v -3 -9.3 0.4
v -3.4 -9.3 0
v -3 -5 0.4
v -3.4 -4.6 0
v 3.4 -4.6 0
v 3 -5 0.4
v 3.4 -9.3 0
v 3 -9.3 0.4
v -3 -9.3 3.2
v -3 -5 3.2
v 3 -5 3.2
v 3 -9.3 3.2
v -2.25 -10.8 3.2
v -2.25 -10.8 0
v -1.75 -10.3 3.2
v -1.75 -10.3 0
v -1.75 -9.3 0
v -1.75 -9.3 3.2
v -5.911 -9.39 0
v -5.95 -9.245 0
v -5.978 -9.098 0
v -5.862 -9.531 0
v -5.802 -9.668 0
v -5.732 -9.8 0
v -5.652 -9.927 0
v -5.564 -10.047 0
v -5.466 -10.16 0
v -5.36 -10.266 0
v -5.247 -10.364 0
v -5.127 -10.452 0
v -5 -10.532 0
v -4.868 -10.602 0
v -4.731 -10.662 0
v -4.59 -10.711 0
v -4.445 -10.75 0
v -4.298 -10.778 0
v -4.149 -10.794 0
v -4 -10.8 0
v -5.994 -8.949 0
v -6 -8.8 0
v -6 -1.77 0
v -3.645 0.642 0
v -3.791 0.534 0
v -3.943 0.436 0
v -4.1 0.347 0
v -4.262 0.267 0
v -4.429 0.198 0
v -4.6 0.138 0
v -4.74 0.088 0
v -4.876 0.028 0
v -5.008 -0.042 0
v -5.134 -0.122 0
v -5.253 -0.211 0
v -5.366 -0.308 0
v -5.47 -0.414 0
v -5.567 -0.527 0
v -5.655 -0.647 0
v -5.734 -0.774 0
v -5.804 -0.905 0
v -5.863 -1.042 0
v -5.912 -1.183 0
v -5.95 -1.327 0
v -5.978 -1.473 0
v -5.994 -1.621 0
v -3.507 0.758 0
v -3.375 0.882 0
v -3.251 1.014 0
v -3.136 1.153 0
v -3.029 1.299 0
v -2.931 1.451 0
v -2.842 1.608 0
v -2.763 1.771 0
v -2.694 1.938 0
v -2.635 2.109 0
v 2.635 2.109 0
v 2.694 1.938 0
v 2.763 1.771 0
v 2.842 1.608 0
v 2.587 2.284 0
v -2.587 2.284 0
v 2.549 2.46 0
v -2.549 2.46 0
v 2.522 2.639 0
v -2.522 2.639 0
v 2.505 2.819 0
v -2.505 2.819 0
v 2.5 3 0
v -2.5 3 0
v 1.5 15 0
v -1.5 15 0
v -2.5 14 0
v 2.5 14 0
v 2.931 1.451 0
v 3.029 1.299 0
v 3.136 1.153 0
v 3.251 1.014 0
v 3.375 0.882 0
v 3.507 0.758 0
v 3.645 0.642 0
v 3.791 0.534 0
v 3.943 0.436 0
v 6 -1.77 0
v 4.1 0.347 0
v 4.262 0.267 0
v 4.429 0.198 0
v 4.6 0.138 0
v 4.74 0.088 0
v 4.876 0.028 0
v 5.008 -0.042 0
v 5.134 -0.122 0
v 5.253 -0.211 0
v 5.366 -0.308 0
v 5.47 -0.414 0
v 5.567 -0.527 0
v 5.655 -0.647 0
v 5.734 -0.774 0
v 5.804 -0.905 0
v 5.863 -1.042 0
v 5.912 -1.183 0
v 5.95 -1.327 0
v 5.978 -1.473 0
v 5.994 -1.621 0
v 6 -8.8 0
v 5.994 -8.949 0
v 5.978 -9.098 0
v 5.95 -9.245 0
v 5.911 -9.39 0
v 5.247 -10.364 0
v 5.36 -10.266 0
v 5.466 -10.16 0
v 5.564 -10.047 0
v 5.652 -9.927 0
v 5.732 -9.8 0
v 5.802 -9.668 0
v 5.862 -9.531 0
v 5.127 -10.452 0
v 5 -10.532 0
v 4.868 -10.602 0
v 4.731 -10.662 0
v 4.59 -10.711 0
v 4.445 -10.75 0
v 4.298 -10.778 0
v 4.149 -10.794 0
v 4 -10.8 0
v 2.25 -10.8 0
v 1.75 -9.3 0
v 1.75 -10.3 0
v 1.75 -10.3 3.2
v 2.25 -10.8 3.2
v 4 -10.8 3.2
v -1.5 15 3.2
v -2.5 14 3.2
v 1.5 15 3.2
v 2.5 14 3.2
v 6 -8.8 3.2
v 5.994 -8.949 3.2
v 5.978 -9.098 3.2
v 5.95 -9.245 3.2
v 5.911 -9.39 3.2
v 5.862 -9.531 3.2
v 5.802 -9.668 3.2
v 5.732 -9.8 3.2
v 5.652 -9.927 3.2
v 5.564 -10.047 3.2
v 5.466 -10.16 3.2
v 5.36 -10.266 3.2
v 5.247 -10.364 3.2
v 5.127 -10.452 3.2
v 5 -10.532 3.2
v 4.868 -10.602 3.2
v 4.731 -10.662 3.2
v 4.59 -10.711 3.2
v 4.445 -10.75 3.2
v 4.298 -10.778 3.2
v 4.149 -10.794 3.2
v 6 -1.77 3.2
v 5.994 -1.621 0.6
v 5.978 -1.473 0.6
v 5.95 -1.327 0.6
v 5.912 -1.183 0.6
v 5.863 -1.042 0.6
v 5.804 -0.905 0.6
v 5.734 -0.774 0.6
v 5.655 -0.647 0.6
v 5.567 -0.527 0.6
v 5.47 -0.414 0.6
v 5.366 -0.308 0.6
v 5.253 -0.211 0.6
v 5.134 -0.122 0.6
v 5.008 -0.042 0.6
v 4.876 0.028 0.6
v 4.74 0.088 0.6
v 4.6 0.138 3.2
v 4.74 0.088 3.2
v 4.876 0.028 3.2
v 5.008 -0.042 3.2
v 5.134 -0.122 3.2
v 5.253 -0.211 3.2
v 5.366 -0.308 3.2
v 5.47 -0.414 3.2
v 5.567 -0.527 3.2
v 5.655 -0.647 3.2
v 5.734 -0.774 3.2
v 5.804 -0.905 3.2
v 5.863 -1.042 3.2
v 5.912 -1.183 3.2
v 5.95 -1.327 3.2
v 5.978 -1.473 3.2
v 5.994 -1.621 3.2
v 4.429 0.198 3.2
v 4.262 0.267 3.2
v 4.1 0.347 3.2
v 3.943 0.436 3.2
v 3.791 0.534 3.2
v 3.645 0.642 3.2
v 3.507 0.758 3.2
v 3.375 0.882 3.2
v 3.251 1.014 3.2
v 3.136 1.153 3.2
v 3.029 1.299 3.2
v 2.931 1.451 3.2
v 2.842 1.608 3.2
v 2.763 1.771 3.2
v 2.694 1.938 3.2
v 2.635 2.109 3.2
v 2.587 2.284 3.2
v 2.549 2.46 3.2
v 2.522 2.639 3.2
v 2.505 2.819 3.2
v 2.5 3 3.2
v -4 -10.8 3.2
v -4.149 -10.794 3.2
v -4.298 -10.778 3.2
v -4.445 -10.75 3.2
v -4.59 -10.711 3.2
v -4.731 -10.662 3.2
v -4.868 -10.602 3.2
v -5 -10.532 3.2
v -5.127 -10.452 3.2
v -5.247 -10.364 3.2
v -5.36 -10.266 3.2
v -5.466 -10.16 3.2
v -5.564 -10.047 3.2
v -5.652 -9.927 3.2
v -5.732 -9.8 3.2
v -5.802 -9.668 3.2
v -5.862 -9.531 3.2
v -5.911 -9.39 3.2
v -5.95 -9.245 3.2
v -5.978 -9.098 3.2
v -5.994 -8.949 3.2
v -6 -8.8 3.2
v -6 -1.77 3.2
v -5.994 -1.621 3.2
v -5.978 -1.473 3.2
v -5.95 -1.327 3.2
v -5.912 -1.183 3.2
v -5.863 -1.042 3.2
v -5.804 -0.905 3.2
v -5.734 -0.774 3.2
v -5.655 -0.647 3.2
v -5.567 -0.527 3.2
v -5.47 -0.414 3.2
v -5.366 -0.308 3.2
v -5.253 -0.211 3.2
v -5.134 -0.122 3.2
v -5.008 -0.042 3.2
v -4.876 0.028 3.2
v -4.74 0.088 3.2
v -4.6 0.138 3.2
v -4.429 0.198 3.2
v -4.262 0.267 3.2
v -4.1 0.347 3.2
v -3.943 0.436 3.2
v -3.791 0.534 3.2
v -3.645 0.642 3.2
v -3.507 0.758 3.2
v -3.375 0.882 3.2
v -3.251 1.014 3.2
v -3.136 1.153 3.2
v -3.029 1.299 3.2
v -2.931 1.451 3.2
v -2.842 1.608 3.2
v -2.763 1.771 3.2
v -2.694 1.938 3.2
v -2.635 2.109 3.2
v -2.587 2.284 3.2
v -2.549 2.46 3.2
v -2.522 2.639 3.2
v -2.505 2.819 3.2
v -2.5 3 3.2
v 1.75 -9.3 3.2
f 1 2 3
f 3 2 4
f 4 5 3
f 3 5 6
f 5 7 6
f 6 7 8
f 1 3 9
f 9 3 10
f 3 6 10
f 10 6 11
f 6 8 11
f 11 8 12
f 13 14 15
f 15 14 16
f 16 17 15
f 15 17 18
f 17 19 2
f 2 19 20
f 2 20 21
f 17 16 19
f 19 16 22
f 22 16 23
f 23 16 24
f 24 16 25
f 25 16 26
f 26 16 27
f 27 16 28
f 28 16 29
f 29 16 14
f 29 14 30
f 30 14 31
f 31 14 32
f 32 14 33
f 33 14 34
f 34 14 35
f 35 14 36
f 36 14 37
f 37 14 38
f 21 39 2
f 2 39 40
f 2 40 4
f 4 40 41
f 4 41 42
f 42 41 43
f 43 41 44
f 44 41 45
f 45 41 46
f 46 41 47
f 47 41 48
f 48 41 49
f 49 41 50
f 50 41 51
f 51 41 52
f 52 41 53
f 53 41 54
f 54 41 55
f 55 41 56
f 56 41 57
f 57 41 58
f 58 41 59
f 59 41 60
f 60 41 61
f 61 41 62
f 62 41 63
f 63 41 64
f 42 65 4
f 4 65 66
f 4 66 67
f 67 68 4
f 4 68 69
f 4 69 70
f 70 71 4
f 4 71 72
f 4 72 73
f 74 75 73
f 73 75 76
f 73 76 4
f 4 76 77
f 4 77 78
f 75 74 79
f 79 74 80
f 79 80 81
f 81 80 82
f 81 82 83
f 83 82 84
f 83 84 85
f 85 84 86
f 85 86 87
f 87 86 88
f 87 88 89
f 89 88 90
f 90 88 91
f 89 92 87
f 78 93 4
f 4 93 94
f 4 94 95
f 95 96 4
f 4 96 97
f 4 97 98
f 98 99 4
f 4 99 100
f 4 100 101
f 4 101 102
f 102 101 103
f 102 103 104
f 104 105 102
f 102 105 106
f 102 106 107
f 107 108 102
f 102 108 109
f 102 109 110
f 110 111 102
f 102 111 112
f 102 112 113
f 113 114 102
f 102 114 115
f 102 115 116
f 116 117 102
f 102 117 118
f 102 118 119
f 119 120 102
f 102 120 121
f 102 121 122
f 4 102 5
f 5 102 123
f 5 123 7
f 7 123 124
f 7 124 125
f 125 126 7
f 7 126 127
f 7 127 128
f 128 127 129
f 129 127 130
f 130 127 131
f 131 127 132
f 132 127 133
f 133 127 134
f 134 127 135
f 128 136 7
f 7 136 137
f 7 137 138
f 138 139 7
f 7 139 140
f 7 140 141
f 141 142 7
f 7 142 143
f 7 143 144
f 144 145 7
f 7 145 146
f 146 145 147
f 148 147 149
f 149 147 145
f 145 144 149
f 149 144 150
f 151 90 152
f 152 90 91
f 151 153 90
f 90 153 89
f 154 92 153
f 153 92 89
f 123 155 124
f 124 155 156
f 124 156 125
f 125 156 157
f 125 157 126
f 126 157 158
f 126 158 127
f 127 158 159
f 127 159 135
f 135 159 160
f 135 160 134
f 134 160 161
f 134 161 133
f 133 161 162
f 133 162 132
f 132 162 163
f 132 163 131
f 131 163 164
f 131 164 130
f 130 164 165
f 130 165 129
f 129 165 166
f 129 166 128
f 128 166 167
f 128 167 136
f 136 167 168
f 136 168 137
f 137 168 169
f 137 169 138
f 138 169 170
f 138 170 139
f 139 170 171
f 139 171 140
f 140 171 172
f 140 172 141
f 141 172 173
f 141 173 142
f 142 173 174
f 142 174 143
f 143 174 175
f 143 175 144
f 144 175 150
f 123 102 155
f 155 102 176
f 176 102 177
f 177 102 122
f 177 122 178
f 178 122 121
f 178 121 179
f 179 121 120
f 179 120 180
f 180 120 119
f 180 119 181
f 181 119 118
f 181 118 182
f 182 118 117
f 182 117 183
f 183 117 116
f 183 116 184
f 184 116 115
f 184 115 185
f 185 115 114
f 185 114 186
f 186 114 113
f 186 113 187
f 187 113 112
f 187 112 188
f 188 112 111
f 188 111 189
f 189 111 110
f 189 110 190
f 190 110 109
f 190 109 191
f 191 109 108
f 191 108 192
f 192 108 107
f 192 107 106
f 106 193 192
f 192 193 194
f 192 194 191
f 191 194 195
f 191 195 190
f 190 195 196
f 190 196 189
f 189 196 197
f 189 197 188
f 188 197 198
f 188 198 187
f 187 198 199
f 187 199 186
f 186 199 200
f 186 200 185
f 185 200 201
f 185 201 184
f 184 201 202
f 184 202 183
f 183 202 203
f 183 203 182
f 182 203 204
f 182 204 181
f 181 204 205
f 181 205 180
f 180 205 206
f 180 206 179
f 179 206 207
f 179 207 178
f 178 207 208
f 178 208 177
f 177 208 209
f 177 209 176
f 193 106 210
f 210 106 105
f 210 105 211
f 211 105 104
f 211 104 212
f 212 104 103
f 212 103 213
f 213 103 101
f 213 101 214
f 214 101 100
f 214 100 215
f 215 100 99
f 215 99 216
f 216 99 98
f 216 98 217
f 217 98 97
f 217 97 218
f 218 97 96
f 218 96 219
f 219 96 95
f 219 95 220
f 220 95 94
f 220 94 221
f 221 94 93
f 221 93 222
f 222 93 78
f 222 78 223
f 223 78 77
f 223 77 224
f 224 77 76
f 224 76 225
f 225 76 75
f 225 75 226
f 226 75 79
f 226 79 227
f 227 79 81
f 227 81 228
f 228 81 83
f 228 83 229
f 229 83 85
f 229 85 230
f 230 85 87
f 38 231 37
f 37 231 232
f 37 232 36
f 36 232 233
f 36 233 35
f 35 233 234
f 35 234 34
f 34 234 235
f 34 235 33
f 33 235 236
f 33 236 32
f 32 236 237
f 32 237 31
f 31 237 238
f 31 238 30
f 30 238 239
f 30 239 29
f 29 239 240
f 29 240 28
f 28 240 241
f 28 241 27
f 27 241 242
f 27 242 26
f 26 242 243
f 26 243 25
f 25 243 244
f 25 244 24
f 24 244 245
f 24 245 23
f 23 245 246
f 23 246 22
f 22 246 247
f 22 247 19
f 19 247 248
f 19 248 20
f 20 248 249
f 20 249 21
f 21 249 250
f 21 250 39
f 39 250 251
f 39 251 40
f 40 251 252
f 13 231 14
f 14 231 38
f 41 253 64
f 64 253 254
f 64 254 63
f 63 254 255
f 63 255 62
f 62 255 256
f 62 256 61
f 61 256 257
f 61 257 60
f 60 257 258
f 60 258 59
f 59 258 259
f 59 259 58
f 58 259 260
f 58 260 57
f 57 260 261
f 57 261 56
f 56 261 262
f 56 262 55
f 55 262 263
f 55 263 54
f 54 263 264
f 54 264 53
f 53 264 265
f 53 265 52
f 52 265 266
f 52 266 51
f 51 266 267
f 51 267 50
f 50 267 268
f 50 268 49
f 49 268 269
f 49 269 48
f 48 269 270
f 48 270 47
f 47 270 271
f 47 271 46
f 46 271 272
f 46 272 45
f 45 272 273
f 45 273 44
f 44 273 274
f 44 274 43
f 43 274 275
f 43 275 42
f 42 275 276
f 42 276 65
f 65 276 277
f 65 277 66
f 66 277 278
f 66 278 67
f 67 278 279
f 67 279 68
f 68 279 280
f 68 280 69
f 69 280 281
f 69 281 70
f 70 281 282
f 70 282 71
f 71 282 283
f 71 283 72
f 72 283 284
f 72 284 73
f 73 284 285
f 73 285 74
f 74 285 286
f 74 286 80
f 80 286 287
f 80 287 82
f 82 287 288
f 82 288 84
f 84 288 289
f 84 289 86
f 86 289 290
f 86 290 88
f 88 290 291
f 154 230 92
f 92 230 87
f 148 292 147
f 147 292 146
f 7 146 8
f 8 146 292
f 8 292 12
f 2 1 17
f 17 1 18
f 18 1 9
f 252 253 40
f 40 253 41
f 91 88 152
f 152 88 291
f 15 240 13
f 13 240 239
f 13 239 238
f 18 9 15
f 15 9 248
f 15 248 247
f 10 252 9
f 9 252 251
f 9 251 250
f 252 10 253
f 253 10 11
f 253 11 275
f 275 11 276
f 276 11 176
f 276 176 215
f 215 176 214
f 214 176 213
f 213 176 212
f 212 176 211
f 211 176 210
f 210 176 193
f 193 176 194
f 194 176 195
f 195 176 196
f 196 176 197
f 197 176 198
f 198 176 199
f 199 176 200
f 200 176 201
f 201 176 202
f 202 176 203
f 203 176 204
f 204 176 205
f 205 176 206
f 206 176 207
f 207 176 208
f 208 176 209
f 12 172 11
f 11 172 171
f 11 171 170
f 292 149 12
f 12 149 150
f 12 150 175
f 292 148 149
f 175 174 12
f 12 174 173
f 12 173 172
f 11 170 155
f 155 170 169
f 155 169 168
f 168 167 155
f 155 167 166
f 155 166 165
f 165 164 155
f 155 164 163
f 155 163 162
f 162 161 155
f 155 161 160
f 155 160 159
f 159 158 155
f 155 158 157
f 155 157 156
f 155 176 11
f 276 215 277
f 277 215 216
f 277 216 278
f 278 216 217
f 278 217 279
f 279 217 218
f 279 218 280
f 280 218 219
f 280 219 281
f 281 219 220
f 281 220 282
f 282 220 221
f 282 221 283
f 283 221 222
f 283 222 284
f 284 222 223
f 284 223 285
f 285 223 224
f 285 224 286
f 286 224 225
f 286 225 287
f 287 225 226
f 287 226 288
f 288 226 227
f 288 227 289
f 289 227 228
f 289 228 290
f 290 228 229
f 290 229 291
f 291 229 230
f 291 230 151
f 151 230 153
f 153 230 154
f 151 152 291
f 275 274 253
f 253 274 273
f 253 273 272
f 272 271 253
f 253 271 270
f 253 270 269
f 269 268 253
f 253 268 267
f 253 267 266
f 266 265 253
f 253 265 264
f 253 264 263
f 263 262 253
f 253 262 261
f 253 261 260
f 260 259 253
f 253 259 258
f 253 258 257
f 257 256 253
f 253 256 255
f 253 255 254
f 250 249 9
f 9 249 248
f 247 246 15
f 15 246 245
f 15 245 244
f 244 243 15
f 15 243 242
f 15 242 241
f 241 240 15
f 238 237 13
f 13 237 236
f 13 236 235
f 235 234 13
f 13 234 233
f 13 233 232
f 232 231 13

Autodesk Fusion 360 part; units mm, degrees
sketch "スケッチ1" plane through (0, 0, 0) normal (0, 0, 1) x (1, 0, 0)
  line L0 (-6, -10.8) -> (-1.75, -10.8)
  line L1 (-1.75, -10.8) -> (-1.75, -9.3)
  line L2 (-1.75, -9.3) -> (-3, -9.3)
  line L3 (-3, -9.3) -> (-3, -5)
  line L4 (-3, -5) -> (3, -5)
  line L5 (3, -5) -> (3, -9.3)
  line L6 (3, -9.3) -> (1.75, -9.3)
  line L7 (1.75, -9.3) -> (1.75, -10.8)
  line L8 (1.75, -10.8) -> (6, -10.8)
  line L9 (6, -10.8) -> (6, 0)
  line L10 (6, 0) -> (5.5, 0)
  line L11 (2.5, 3) -> (2.5, 15)
  line L12 (2.5, 15) -> (-2.5, 15)
  line L13 (-2.5, 15) -> (-2.5, 3)
  line L14 (-5.5, 0) -> (-6, 0)
  line L15 (-6, 0) -> (-6, -10.8)
  line L16 (0, 0) -> (0, -5) construction
  line L17 (-2.5, 0) -> (1.5, 0) construction
  arc A0 (-5.5, 0) -> (-2.5, 3) centre (-5.5, 3) ccw
  arc A1 (2.5, 3) -> (5.5, 0) centre (5.5, 3) ccw
  dimension "d4" = 6
  dimension "d5" = 1.5
  dimension "d6" = 4.3
  dimension "d7" = 3
  dimension "d8" = 5
  dimension "d9" = 5
  dimension "d10" = 15
  dimension "d11" = 3.5
  dimension "d12" = 3
  dimension "d13" = 3
extrude "押し出し1" add sketch "スケッチ1" along normal blind 3.2
fillet "フィレット1" radius 2 4 edges at (-6, 0, 1.6) (-6, -10.8, 1.6) (6, 0, 1.6) (6, -10.8, 1.6)
chamfer "面取り1" distance 1 angle 45 2 edges at (2.5, 15, 1.6) (-2.5, 15, 1.6)
chamfer "面取り2" distance 0.5 angle 45 2 edges at (1.75, -10.8, 1.6) (-1.75, -10.8, 1.6)
chamfer "面取り3" distance 0.4 angle 45 3 edges at (3, -7.15, 0) (0, -5, 0) (-3, -7.15, 0)
equation "d1 = 3.7 mm - 0.5 mm"
